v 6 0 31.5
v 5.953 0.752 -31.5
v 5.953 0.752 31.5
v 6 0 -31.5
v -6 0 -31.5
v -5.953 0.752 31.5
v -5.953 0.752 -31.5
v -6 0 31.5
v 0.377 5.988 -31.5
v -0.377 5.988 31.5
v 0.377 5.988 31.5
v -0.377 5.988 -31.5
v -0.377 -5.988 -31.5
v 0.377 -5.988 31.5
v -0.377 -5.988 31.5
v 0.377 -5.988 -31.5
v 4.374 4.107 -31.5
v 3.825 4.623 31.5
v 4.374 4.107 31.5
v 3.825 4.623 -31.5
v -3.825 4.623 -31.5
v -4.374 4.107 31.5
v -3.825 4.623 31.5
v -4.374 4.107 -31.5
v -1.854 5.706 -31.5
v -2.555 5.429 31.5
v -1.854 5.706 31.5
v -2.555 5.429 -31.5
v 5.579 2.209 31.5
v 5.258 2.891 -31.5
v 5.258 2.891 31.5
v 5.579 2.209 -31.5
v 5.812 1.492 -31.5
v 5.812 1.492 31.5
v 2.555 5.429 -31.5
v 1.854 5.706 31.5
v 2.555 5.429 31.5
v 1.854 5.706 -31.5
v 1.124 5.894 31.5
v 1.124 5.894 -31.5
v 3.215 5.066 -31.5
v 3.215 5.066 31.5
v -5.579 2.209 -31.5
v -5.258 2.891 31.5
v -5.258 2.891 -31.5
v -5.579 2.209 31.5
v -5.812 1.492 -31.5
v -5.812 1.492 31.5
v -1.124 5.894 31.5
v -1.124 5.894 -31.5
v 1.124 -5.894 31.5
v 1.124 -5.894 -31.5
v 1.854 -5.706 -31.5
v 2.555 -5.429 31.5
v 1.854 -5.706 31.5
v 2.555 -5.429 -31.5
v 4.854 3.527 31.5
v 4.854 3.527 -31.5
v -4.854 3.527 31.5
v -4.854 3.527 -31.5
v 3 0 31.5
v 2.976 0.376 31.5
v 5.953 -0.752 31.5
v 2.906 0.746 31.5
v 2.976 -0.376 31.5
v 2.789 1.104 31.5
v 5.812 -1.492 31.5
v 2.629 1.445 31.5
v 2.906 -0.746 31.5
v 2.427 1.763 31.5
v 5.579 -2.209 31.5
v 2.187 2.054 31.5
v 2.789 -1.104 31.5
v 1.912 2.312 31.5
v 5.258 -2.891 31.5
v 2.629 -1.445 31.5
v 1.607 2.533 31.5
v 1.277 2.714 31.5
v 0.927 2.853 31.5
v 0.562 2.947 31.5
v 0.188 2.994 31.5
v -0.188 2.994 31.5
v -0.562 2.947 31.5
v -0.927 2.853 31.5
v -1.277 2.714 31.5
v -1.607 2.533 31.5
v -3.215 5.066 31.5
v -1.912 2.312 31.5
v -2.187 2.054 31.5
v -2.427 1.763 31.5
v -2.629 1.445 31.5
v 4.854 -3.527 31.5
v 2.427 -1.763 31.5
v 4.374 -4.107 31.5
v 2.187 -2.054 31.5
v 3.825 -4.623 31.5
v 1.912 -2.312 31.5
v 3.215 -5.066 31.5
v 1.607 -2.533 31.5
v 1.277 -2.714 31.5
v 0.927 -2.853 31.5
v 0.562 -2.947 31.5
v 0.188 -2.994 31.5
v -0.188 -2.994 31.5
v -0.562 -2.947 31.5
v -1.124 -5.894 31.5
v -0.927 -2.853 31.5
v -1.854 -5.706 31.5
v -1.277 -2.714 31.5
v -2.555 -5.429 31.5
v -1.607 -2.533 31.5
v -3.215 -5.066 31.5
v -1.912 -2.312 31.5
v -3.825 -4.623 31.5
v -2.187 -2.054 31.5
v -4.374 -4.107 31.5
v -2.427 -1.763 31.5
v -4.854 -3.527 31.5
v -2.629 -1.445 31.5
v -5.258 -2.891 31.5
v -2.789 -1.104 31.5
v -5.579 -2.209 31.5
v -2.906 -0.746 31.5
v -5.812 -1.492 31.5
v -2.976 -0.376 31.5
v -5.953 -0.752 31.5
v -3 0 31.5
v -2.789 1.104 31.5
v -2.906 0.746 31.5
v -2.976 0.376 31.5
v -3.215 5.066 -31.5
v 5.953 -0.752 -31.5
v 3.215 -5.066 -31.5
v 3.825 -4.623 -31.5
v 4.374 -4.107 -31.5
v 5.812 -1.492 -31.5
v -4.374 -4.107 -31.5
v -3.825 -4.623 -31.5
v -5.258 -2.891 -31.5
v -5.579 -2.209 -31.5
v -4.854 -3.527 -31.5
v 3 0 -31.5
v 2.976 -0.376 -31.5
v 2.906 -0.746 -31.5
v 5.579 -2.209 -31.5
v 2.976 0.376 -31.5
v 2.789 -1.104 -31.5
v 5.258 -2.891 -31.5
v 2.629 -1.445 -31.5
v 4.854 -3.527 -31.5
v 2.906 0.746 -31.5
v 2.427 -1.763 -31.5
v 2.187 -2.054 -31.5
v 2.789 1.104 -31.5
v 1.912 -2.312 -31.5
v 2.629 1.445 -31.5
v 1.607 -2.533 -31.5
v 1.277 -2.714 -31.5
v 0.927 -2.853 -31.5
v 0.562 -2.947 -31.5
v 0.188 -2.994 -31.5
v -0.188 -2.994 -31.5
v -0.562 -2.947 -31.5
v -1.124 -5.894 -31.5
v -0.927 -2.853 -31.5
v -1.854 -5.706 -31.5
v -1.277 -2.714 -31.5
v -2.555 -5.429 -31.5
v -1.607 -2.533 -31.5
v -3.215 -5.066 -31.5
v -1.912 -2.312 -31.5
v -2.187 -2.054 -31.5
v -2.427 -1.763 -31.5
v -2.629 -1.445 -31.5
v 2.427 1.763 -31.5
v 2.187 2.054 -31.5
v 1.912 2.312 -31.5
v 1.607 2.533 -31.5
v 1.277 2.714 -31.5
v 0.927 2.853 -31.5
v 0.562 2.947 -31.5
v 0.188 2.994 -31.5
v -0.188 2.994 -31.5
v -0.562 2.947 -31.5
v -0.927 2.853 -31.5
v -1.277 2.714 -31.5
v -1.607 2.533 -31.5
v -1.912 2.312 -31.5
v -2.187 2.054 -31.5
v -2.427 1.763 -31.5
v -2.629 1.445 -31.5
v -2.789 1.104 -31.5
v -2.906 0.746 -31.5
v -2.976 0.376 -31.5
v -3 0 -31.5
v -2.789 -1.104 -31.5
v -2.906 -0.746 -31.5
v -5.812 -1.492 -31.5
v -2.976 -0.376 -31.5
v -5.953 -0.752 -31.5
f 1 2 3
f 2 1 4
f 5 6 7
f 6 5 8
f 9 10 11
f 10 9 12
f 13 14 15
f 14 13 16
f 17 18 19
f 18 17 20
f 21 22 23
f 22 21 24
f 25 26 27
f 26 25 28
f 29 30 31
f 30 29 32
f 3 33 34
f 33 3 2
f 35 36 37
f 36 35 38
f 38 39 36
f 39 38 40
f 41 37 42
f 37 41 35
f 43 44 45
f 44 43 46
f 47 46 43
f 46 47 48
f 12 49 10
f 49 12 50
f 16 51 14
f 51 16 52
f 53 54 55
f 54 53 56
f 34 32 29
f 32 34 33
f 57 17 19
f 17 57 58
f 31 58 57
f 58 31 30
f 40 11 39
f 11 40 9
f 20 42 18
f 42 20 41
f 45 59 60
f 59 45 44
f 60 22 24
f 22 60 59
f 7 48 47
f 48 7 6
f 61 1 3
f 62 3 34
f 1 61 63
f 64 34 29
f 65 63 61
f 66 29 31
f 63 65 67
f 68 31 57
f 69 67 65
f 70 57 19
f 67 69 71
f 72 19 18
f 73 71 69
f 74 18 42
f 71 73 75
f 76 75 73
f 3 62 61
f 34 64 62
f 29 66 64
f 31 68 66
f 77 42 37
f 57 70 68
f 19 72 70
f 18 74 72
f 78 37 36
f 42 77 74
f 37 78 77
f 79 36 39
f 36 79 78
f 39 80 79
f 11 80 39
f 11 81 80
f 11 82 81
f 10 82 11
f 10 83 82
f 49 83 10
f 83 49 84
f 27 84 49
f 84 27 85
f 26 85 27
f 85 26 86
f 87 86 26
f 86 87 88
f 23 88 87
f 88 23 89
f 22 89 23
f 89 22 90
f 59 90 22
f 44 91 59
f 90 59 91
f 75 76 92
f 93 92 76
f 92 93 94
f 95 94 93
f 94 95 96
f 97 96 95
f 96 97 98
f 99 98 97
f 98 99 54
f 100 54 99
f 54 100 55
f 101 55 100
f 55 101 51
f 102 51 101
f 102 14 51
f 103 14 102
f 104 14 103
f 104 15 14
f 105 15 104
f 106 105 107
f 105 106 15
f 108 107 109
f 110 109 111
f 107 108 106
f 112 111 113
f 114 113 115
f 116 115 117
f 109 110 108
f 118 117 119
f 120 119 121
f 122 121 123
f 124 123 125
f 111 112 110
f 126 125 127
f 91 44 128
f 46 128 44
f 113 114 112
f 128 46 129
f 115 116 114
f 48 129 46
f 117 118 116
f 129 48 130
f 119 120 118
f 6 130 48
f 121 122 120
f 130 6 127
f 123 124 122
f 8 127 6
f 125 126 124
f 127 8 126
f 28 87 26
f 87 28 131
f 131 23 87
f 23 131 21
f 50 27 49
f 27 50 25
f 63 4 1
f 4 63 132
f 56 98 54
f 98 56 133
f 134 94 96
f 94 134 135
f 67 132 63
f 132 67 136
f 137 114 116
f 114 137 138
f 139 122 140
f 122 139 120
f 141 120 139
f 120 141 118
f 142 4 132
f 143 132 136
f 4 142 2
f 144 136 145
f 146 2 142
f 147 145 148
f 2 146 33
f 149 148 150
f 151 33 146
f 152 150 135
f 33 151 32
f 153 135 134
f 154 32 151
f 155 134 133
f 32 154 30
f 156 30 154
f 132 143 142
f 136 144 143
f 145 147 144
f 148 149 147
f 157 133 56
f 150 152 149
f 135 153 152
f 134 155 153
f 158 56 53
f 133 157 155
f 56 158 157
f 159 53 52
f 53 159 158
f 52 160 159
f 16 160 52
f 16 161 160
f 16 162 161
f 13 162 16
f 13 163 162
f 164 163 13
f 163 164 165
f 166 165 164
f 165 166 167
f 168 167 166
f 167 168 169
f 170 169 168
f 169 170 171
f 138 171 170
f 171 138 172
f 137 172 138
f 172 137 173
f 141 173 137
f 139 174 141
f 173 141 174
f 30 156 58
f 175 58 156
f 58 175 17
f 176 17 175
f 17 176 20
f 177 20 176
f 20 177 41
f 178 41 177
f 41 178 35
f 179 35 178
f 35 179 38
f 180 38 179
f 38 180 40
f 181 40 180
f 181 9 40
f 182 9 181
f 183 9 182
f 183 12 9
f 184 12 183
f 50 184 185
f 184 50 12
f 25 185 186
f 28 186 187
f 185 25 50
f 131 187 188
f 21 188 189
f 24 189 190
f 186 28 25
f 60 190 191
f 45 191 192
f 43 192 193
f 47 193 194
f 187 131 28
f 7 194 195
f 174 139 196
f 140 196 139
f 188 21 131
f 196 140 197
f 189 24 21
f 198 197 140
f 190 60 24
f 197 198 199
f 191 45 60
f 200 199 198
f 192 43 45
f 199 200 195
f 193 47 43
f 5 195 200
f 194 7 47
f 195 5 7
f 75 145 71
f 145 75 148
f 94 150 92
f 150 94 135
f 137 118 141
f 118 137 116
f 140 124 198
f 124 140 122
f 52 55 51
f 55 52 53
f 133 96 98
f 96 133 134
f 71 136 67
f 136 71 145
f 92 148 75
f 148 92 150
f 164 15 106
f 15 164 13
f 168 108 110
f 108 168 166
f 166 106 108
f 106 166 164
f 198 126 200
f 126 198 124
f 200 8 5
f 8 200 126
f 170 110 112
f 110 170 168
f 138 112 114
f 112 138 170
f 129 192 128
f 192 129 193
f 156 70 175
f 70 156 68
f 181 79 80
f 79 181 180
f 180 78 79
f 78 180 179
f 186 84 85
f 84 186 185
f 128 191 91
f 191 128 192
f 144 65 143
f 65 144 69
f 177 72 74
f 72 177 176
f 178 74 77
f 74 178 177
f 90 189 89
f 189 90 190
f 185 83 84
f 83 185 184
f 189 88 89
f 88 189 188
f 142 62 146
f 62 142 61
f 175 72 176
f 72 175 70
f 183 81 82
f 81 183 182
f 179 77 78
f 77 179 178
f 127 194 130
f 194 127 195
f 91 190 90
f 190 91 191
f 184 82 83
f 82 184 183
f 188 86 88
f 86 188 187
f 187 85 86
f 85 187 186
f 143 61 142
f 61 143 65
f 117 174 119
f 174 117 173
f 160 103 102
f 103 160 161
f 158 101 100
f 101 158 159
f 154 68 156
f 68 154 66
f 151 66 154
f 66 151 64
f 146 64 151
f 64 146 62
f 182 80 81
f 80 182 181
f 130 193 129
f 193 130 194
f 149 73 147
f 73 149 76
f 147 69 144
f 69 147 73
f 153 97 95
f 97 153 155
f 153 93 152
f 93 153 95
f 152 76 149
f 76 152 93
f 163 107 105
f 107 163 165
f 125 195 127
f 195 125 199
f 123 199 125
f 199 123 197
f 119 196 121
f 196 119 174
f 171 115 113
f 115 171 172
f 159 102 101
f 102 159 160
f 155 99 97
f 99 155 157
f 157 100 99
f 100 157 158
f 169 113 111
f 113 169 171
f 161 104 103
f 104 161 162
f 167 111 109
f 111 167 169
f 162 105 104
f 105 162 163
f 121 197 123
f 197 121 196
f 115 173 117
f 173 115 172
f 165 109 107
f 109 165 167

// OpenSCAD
$fn = 50;


difference() {
	union() {
		translate(v = [0, 0, -31.5000000000]) {
			cylinder(h = 63, r = 6.0000000000);
		}
	}
	union() {
		translate(v = [0, 0, -100.0000000000]) {
			cylinder(h = 200, r = 3);
		}
	}
}
